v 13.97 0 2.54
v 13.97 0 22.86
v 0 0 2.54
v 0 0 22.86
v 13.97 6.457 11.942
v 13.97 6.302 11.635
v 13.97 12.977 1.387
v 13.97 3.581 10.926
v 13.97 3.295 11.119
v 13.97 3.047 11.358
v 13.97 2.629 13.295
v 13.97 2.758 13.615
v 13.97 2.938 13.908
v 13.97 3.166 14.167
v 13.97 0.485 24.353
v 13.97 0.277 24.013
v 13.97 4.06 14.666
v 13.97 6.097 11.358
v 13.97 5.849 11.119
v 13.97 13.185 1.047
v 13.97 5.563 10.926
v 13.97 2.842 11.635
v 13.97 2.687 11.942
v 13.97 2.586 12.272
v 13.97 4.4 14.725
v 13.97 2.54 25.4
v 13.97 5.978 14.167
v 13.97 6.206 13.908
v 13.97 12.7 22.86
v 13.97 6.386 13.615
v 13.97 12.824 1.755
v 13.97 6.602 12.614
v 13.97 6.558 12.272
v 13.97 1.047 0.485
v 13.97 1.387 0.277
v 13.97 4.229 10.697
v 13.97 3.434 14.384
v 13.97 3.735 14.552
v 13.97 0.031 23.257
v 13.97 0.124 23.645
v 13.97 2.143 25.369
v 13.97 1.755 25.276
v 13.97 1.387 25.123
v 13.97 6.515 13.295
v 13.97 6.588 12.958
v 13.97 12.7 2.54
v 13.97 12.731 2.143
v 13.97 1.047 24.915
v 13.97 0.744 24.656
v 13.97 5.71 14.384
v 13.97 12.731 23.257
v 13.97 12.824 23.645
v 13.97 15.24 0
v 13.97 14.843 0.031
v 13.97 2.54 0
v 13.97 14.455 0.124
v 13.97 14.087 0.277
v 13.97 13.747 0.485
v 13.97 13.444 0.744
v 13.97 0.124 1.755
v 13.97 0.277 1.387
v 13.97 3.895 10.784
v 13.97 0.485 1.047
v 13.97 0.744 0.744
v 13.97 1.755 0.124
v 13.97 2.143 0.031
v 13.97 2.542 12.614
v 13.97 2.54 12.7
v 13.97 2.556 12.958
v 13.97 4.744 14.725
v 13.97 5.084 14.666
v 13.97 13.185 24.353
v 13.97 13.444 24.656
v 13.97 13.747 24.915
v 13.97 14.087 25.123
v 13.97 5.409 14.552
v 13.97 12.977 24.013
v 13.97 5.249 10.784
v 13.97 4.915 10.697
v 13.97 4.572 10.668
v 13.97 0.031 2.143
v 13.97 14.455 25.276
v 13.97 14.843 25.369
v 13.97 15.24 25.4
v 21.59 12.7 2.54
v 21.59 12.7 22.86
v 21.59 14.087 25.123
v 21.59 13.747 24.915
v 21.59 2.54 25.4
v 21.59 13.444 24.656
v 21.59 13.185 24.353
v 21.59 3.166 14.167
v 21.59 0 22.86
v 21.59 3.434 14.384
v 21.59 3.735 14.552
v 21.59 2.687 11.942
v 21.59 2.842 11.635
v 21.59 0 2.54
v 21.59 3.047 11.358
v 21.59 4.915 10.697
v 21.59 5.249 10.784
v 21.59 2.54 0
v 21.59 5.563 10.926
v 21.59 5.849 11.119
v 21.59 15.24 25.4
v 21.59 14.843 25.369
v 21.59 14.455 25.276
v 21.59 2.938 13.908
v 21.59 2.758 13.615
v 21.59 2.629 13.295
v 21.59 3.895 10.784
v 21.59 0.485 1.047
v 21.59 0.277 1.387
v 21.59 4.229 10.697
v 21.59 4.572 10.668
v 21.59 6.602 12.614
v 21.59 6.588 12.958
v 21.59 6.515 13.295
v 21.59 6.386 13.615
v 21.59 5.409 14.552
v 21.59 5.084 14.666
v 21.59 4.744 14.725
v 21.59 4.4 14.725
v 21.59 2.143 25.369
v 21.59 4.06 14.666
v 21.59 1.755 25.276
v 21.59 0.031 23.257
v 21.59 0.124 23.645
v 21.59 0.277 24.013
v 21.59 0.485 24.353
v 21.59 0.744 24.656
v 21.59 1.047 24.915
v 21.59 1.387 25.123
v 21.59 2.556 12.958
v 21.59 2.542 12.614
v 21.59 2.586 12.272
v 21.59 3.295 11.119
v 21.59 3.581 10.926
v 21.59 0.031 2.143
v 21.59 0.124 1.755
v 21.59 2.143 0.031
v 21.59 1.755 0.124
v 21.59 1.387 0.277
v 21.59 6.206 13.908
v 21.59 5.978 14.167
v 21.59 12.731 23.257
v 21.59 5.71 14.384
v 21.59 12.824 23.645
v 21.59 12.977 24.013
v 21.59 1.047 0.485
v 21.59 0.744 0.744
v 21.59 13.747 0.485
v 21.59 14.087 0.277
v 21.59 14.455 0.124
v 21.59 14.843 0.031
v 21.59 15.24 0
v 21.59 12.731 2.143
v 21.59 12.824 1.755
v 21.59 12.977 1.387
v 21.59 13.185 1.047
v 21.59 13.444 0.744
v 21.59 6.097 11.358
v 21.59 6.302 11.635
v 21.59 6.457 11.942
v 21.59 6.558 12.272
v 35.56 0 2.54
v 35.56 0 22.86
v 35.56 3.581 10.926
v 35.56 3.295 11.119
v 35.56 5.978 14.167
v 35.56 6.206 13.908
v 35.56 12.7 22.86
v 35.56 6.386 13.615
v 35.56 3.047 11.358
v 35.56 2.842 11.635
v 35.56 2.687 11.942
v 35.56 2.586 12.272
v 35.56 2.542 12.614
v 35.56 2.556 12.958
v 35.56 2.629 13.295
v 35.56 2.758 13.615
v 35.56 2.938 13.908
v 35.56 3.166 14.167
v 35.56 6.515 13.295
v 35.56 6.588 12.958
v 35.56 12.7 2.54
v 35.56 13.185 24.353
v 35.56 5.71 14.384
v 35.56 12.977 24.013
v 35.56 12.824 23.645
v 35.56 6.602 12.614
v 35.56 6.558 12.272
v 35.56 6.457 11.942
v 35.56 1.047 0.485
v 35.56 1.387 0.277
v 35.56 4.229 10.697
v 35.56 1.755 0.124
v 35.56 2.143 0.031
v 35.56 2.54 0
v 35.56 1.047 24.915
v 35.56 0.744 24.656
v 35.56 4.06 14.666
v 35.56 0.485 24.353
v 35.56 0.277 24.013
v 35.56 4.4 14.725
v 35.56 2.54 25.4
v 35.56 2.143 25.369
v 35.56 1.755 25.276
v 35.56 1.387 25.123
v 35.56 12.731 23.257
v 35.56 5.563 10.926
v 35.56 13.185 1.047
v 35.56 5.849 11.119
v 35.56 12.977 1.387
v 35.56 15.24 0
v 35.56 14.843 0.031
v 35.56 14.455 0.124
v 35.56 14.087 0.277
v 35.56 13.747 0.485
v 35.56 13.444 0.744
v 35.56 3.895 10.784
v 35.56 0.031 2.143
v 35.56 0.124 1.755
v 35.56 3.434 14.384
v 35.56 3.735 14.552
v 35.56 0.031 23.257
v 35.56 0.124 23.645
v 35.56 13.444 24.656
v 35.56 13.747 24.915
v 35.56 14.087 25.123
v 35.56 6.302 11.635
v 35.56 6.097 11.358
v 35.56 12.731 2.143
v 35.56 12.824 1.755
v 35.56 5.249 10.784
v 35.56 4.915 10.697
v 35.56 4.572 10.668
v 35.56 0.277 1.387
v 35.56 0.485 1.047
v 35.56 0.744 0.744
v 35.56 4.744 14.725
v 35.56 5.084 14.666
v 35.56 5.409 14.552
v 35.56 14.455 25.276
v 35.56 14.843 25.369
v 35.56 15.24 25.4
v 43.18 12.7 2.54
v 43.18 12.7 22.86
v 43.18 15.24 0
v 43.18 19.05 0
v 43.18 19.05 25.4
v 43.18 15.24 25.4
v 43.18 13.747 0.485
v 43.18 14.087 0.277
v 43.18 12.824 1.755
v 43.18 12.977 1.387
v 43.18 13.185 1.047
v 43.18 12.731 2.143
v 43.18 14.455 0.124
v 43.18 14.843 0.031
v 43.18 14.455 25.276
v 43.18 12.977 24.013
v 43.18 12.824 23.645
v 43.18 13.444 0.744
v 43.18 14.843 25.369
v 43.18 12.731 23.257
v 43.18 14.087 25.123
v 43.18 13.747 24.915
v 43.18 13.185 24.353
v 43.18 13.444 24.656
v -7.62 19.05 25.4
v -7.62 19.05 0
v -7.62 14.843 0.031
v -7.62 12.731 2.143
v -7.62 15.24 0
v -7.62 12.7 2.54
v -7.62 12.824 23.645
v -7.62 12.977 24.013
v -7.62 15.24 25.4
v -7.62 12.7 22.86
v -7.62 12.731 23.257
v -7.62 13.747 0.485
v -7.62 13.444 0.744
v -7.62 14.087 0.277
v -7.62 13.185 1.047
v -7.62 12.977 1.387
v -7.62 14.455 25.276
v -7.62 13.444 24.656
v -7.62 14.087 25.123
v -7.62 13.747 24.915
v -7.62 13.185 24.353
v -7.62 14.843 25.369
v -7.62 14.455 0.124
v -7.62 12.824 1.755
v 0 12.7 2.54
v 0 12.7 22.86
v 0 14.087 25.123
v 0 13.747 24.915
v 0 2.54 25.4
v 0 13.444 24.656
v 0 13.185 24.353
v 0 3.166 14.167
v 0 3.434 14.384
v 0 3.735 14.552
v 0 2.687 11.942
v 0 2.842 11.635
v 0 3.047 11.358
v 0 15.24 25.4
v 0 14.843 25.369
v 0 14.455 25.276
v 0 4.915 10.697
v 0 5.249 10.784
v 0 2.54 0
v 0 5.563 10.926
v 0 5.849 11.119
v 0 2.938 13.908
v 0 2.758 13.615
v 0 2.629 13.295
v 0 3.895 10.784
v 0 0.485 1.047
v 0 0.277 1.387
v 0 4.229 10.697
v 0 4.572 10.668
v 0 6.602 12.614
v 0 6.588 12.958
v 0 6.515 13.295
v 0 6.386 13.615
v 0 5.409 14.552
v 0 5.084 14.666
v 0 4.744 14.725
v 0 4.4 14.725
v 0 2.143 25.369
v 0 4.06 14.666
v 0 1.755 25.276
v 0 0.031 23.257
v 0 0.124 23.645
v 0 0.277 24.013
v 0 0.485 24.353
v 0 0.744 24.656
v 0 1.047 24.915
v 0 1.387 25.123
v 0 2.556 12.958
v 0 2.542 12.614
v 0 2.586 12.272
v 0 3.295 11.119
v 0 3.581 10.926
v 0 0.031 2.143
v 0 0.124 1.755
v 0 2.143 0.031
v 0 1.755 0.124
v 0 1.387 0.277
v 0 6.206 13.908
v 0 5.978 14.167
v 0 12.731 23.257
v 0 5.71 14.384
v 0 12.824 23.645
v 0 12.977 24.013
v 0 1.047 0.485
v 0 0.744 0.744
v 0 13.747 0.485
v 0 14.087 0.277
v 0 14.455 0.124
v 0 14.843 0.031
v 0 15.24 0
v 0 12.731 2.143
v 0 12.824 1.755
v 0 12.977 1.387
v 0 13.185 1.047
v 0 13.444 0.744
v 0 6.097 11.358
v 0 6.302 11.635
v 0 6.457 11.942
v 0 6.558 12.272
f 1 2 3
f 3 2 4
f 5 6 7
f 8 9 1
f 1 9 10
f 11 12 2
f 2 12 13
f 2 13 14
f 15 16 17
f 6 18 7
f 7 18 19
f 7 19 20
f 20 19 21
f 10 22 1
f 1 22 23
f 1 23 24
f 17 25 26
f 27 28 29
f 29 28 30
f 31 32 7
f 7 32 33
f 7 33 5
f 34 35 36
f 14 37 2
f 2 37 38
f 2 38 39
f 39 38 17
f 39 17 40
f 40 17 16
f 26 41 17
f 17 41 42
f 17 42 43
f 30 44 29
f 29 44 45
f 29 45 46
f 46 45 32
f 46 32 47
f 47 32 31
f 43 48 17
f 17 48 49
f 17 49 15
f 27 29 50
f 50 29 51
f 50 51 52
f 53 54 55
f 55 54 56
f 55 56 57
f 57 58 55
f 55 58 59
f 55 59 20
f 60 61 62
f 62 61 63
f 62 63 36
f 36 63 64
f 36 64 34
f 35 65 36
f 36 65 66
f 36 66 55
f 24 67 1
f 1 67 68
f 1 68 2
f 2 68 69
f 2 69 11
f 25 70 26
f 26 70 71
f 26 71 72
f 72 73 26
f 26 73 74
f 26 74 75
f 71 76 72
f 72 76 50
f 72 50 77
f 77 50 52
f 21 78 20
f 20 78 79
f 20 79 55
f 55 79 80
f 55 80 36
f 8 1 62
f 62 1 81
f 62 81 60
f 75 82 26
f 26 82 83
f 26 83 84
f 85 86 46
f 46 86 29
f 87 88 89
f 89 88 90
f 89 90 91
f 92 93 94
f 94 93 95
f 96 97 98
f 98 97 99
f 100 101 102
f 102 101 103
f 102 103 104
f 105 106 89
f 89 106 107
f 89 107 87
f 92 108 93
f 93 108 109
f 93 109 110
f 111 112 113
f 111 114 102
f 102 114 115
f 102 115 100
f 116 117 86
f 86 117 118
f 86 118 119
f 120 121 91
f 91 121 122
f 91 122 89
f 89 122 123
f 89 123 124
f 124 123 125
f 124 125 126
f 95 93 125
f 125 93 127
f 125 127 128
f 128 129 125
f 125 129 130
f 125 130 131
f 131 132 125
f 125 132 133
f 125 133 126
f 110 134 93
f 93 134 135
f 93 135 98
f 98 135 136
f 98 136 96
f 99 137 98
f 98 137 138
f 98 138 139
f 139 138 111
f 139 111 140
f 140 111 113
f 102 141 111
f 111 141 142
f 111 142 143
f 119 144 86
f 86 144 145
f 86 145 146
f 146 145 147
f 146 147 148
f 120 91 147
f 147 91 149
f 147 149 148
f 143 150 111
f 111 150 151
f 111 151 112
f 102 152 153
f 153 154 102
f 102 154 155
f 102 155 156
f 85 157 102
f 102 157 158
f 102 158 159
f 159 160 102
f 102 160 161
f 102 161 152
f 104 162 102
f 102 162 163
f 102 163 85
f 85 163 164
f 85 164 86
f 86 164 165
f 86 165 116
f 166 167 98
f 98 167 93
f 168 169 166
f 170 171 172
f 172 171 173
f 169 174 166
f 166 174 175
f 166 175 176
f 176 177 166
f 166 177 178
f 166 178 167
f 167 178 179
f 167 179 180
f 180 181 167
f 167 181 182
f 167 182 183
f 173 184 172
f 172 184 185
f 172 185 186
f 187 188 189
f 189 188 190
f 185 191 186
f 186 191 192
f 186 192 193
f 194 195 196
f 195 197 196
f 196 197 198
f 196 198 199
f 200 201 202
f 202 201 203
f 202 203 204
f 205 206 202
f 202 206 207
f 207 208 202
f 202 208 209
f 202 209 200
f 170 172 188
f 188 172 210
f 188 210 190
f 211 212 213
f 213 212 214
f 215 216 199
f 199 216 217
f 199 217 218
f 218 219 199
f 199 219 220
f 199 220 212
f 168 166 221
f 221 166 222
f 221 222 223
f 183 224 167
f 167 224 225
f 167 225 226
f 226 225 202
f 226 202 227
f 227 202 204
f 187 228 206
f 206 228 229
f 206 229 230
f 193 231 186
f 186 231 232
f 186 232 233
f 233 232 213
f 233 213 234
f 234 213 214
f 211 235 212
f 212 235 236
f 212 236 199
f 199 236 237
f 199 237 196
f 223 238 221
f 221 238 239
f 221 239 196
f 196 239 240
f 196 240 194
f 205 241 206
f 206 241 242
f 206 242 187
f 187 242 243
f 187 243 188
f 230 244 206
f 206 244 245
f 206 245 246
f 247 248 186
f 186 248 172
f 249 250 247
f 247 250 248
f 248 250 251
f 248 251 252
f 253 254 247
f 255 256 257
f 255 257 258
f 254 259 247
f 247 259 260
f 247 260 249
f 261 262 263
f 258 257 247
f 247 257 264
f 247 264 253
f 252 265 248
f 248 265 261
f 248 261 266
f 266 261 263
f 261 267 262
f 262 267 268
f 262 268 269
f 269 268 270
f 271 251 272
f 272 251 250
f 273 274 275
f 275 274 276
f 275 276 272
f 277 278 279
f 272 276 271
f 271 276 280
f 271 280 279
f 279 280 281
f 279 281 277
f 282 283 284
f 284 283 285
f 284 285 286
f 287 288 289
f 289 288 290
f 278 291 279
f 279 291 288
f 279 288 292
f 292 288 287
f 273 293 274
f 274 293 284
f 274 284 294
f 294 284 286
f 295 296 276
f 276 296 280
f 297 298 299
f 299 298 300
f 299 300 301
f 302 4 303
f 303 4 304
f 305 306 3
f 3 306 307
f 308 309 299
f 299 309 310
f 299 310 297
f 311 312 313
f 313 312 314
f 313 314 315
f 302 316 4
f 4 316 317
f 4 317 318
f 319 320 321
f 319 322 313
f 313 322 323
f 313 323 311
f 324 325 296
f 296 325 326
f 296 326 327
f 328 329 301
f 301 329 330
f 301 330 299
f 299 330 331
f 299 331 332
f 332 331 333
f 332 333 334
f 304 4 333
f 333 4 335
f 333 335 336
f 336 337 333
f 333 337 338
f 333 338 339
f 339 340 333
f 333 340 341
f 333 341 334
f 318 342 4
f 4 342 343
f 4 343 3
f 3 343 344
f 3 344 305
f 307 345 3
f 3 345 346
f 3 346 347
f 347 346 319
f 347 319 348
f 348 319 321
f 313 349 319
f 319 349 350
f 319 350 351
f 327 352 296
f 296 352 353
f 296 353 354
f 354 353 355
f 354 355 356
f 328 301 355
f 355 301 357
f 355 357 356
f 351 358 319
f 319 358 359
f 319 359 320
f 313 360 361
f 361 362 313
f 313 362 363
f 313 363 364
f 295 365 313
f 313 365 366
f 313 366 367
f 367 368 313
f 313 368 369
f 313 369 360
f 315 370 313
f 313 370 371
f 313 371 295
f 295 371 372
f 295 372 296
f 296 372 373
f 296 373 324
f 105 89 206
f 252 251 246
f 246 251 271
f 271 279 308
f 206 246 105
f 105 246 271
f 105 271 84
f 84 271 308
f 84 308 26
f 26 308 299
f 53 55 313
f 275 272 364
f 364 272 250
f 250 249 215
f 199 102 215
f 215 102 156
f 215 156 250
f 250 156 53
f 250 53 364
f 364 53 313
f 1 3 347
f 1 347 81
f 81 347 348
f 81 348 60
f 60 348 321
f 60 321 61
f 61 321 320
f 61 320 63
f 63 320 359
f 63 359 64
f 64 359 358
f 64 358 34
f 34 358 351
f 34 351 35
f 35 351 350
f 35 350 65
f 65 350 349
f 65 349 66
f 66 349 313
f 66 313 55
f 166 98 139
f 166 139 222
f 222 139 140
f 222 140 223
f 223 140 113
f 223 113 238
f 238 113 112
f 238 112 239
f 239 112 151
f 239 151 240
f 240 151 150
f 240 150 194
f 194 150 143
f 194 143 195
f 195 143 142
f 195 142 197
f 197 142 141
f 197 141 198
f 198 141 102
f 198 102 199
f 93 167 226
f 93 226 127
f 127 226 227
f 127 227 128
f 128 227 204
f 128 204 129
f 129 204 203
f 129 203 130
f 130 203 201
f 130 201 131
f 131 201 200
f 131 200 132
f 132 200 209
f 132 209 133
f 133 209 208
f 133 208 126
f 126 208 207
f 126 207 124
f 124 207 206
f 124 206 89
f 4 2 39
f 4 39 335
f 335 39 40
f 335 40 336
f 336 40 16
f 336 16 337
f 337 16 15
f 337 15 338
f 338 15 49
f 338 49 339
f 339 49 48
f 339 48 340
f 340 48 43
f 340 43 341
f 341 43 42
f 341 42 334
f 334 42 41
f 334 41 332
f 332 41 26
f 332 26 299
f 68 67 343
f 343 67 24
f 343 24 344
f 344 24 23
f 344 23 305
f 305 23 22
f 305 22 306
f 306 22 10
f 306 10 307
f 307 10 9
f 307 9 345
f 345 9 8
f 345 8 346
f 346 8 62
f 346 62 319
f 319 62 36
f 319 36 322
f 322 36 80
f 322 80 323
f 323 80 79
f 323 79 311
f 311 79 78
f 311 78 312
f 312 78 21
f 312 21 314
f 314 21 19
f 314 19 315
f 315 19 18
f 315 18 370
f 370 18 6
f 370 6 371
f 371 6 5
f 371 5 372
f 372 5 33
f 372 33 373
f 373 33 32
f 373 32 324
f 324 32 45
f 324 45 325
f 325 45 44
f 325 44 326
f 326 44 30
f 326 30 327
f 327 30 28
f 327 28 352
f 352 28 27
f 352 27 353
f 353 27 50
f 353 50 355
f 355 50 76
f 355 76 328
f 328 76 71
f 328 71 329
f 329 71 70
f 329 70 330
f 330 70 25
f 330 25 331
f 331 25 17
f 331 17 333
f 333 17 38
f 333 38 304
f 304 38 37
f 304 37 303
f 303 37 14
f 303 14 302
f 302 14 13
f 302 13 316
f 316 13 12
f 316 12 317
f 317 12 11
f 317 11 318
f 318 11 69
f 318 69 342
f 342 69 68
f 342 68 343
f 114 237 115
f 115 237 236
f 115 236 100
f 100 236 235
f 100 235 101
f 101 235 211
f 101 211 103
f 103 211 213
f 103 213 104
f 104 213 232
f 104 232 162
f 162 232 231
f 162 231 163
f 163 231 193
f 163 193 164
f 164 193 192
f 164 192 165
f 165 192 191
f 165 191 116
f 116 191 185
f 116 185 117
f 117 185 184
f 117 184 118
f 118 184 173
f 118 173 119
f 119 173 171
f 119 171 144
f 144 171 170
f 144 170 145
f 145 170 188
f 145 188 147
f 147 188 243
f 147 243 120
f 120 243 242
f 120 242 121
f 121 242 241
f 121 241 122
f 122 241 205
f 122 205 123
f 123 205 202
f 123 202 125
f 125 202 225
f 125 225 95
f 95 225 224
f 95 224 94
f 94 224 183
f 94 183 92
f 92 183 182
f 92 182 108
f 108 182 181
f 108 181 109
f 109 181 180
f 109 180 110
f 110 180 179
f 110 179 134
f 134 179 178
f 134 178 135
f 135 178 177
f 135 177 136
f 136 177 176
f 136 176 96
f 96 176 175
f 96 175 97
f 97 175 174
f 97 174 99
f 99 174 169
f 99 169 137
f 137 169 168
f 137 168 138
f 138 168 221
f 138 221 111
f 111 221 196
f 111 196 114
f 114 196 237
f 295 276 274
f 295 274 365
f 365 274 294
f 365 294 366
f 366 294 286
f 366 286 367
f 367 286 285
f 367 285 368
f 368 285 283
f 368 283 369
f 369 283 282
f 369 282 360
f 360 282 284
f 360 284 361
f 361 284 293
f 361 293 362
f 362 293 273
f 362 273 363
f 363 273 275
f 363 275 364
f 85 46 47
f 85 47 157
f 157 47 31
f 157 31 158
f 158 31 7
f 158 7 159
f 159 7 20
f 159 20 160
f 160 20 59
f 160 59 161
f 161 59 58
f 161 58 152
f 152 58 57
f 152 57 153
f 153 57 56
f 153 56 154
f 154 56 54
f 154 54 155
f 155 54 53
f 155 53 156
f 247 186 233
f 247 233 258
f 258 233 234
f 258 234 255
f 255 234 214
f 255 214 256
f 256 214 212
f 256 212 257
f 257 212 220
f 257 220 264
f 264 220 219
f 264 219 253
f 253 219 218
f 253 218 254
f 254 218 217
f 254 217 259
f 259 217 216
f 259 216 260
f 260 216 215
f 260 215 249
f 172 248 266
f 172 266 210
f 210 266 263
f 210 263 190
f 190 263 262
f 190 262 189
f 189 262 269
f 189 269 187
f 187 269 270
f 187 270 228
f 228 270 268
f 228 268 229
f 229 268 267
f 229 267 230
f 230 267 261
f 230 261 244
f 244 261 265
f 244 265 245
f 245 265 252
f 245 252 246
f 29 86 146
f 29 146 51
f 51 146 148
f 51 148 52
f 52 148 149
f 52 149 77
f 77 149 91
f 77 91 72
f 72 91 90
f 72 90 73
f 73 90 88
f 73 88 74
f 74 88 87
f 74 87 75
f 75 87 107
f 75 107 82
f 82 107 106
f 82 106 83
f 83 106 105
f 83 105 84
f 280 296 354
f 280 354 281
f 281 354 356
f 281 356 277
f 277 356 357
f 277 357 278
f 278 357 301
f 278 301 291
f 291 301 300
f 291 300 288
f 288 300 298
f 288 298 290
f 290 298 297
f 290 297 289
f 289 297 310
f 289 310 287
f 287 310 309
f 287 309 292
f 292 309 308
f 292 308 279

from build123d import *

# Parameters (mm, degrees)
BOSS_EXTRUDE1_DEPTH = 25.4
FILLET1_R           = 2.54
SKETCH2_R           = 2.032
CUT_EXTRUDE1_DEPTH  = 54.596407529
FILLET2_R           = 2.54


with BuildPart() as part:
    # Sketch1 → Boss-Extrude1 (new body)
    with BuildSketch(Plane.XY):
        Polygon((0, 0), (0, 12.7), (-7.62, 12.7), (-7.62, 19.05), (43.18, 19.05), (43.18, 12.7), (35.56, 12.7), (35.56, 0), (21.59, 0), (21.59, 12.7), (13.97, 12.7), (13.97, 0), align=None)
    extrude(amount=BOSS_EXTRUDE1_DEPTH)

    # Fillet1
    fillet1_edges = [part.edges().sort_by_distance(p)[0] for p in [
        (28.575, 0, 0),
        (6.985, 0, 0),
        (28.575, 0, 25.4),
        (6.985, 0, 25.4),
    ]]
    fillet(fillet1_edges, radius=FILLET1_R)

    # Sketch2 → Cut-Extrude1 (cut, through all)
    with BuildSketch(Plane(origin=(35.56, 0, 0), x_dir=(0, 0, -1), z_dir=(1, 0, 0))):
        with Locations((-12.7, 4.572)):
            Circle(SKETCH2_R)
    extrude(amount=-CUT_EXTRUDE1_DEPTH, mode=Mode.SUBTRACT)

    # Fillet2
    fillet2_edges = [part.edges().sort_by_distance(p)[0] for p in [
        (17.78, 12.7, 25.4),
        (-3.81, 12.7, 0),
        (39.37, 12.7, 0),
        (17.78, 12.7, 0),
        (39.37, 12.7, 25.4),
        (-3.81, 12.7, 25.4),
    ]]
    fillet(fillet2_edges, radius=FILLET2_R)


solid = part.part
